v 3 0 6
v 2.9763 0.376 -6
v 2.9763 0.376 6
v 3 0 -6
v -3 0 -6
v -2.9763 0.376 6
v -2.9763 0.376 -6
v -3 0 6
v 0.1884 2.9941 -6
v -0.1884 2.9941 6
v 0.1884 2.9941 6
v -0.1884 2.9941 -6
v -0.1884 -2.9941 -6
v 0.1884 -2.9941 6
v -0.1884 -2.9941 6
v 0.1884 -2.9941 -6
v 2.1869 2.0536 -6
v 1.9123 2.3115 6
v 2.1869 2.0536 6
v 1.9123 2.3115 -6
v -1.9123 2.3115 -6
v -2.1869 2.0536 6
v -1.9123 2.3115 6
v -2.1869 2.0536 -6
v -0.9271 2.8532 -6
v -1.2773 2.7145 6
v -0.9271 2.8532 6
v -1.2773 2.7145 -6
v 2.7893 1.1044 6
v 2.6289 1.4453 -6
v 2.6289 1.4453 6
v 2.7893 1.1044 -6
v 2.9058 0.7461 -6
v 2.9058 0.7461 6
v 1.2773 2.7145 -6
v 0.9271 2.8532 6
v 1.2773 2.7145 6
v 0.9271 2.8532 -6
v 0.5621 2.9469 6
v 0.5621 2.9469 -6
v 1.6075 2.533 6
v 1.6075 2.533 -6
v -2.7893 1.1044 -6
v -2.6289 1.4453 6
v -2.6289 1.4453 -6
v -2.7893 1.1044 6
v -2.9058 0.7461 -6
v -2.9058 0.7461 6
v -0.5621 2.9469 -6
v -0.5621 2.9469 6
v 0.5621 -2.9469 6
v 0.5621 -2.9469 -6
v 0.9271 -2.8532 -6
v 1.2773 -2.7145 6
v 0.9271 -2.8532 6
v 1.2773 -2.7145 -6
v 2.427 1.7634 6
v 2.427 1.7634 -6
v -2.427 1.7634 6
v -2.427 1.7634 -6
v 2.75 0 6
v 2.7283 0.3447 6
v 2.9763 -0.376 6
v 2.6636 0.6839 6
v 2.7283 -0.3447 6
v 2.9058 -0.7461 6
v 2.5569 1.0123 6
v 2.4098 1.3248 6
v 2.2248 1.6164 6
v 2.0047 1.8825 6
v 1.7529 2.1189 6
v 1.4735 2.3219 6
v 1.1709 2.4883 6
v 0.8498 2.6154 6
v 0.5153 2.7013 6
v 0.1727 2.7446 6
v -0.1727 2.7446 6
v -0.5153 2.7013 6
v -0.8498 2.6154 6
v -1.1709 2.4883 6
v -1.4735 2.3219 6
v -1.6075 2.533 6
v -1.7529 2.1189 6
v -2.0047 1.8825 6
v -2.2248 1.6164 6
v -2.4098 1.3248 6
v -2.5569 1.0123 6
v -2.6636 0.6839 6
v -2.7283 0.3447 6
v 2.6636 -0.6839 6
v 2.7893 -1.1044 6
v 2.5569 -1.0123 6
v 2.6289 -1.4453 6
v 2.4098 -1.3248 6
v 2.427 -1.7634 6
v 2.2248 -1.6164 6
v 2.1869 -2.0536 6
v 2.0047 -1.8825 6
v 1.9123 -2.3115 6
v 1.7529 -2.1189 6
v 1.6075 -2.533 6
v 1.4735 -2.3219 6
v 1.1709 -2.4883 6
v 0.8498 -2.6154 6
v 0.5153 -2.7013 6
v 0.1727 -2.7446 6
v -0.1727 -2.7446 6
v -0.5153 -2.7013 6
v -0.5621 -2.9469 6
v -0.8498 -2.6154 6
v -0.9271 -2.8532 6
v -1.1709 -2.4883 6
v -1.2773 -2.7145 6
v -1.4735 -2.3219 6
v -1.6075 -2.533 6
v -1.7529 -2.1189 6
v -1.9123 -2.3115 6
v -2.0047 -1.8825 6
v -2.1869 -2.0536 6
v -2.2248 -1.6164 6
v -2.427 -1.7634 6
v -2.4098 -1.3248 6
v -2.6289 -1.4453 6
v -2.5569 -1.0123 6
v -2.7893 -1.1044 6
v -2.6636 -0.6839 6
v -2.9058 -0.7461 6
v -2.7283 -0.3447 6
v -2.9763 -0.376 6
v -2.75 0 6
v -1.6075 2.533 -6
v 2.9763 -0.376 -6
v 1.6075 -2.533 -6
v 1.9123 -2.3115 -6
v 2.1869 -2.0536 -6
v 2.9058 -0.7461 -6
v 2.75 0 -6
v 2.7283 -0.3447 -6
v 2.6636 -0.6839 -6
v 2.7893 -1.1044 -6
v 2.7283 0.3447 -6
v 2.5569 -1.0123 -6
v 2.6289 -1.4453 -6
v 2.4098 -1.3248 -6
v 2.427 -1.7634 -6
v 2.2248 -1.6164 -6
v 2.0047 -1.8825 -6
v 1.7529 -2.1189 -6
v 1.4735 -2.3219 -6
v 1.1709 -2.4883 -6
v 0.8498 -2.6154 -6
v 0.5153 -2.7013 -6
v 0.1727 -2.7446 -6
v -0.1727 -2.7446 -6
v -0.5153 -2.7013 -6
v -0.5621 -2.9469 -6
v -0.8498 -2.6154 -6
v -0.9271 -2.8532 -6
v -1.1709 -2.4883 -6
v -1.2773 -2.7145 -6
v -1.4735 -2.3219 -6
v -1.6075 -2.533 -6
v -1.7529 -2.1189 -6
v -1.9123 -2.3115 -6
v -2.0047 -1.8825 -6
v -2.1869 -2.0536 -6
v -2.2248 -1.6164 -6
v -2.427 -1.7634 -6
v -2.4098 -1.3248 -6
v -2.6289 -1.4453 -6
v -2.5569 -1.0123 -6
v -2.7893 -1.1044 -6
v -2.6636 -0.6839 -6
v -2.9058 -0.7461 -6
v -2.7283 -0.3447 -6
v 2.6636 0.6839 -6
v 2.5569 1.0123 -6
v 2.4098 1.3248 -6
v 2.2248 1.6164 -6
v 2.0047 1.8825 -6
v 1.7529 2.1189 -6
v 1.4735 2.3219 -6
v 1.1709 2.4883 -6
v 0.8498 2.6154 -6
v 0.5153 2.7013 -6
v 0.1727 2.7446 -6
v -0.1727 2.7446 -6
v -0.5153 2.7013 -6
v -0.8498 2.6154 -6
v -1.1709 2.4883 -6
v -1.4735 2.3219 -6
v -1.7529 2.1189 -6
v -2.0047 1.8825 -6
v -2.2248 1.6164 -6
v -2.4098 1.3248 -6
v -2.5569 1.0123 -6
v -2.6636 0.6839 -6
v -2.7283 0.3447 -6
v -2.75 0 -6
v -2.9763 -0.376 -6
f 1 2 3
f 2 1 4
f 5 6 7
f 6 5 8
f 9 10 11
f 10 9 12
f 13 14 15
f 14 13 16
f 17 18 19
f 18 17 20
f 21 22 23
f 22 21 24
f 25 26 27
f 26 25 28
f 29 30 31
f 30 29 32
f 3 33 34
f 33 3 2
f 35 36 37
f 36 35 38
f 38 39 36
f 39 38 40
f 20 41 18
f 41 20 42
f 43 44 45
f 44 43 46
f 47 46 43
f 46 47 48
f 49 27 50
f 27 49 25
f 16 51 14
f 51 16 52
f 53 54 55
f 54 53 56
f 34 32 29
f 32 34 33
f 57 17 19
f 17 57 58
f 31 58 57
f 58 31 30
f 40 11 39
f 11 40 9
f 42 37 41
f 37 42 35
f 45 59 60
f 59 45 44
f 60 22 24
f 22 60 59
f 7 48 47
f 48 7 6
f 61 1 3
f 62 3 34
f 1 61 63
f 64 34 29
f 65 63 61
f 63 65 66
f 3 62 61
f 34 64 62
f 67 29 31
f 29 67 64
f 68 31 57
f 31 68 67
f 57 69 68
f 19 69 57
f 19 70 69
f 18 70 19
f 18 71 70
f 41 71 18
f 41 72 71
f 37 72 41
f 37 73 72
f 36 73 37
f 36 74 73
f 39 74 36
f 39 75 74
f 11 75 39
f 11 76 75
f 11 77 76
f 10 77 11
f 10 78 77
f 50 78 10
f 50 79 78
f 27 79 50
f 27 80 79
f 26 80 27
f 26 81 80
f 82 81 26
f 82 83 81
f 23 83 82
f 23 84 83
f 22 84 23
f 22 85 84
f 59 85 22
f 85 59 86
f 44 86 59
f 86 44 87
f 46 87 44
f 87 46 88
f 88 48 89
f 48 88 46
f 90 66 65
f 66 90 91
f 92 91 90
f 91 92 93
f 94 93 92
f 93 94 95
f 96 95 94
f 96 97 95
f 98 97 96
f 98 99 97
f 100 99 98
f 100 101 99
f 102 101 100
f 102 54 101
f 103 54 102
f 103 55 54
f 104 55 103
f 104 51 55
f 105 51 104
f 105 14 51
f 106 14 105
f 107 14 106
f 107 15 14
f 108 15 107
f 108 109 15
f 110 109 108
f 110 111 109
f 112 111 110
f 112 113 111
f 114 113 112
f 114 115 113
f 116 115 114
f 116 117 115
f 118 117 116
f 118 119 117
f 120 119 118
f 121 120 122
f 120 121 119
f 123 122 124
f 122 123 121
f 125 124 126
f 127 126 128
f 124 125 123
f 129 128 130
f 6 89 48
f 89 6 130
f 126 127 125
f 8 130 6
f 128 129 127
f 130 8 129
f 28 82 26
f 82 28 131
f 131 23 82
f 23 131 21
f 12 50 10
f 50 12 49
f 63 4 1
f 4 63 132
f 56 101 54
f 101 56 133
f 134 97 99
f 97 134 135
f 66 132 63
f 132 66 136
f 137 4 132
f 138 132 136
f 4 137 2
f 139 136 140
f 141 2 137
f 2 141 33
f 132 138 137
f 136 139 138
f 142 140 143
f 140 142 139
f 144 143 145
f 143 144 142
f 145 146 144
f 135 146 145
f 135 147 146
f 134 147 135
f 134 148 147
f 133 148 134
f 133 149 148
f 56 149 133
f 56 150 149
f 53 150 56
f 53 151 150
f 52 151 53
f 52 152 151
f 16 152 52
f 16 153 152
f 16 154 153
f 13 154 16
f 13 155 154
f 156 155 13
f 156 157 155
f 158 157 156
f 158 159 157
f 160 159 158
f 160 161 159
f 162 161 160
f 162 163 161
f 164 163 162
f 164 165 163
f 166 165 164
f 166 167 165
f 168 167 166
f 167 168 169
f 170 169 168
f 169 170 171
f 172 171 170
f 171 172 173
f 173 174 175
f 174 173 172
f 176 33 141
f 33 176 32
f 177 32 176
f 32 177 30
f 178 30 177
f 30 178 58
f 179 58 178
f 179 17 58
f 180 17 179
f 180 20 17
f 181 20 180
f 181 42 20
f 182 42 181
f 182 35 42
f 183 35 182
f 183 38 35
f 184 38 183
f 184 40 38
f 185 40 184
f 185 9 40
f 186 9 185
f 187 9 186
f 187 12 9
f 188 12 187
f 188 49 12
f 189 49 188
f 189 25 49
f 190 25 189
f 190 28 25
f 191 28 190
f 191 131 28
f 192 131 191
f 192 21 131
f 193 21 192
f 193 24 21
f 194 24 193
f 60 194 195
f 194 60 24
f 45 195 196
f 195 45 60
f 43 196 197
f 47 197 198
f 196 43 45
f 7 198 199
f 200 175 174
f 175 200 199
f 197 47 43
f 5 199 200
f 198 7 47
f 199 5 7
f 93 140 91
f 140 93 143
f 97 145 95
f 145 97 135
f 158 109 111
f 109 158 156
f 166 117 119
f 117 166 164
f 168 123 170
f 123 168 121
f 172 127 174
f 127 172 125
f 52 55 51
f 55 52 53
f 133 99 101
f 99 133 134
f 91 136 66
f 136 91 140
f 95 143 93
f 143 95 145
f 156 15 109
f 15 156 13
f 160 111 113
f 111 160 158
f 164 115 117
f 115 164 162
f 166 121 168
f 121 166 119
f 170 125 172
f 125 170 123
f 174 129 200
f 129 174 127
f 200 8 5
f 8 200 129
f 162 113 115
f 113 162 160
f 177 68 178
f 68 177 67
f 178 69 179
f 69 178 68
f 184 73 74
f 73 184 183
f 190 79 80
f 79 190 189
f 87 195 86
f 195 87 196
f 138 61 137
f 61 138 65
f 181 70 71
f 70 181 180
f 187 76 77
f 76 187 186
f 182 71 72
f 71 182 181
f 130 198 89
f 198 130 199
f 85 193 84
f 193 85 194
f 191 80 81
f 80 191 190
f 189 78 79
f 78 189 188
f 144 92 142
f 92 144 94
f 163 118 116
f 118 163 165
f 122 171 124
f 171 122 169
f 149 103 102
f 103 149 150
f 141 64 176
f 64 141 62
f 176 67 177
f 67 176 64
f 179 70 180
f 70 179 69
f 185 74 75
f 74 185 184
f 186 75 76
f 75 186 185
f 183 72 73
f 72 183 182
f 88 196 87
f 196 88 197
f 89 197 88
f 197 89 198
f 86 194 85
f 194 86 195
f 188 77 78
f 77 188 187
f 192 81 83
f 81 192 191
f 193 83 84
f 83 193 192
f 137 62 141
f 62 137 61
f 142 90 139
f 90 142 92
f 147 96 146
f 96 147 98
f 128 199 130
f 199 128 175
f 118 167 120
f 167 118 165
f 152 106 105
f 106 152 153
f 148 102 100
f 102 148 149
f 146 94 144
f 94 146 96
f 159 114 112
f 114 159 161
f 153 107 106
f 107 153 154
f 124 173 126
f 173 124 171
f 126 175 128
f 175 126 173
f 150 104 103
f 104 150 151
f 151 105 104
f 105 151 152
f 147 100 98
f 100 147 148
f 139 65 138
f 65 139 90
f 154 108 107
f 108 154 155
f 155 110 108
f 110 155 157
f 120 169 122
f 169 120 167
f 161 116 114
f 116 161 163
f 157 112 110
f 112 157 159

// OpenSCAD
$fn = 50;


difference() {
	union() {
		translate(v = [0, 0, -6.0000000000]) {
			cylinder(h = 12, r = 3.0000000000);
		}
	}
	union() {
		translate(v = [0, 0, -100.0000000000]) {
			cylinder(h = 200, r = 2.7500000000);
		}
	}
}
